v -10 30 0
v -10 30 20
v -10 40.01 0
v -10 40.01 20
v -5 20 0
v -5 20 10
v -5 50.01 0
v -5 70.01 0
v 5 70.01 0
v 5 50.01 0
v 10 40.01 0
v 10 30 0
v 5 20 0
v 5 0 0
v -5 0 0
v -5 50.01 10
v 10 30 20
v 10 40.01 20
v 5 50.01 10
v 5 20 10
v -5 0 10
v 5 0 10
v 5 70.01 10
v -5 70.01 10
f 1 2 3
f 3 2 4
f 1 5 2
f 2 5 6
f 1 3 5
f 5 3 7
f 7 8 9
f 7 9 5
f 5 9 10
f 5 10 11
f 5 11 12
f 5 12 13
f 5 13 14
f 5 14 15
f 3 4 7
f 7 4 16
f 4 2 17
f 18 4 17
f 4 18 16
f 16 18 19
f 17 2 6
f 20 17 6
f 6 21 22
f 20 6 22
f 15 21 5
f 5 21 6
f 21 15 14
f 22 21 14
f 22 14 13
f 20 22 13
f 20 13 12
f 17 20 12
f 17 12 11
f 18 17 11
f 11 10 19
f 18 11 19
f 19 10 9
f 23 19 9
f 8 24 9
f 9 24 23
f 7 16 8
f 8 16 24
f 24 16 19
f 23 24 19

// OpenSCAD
// file: beams.scad
/* 
 * openscad beams library
 * create complex openscads objects from frames which are defining beams
 * (constructed like a ship body or airplane hull)
 *
 * https://github.com/Stemer114/openscad_beams
 * http://www.thingiverse.com/Stemer114/designs
 * 
 *    Copyright (C) 2016 Stemer114 (stemer114@merunka.de)
 *
 *    This program is free software: you can redistribute it and/or modify
 *    it under the terms of the GNU General Public License as published by
 *    the Free Software Foundation, either version 3 of the License, or
 *    (at your option) any later version.
 *
 *    This program is distributed in the hope that it will be useful,
 *    but WITHOUT ANY WARRANTY; without even the implied warranty of
 *    MERCHANTABILITY or FITNESS FOR A PARTICULAR PURPOSE.  See the
 *    GNU General Public License for more details.
 *
 *    You should have received a copy of the GNU General Public License
 *    along with this program.  If not, see <http://www.gnu.org/licenses/>.
 *

 * Credits: 
 *          for some of the examples
 *          MCAD Library - Polyholes Copyright 2011 Nophead (of RepRap fame)
 *          It is licensed under the terms of Creative Commons Attribution 3.0 Unported.
 *          https://github.com/SolidCode/MCAD/blob/master/polyholes.scad
 *
 *          BeamsVersion, libEcho and code structure inspired by 
 *          OpenSCAD Parts Library by randyy is licensed under the GNU - LGPL license. 
 *          http://www.thingiverse.com/thing:6021
 *
 */

//**** house keeping
//we define these as functions to avoid assignment problems from caller modules
function BeamsVersion() = 1.0;  //library version
function ep()=0.01;  //epsilon environment to avoid non-manifold objects


//**** module definitions

// a single rectangular frame, usually very thin
// params: w - width of frame (x direction)
//         h - height of frame (z direction)
//         d - thickness of frame (y direction, usually very thin, e.g. 0.1mm)
//         o - offset vector from origin (probably best to use x and y offsets only here for starters)
//         r - rotation vector (probably best to use only z rotation here for starters)
//         vec - vector interface, used instead of the named params
//         the vector must use the following structure (example)
//           w  h  rotation    offset        thickness
//          [3, 4, [0, 0, 90], [0, -1.5, 0], ep ],   //start (front center)
//         there is no checking other than length checking to branch in the interface
//         so better make sure the vector conforms
//         the vector interface allows you to define a list of vectors in your source file
//         and supply them all at once to the beam module (see below)
//         this probably makes more sense if you look at some of the example files
module frame(
        w = 10,  //width
        h = 10,  //height
        r = [0, 0, 0],  //rotation vector
        o = [0, 0, 0],   //offset vector
        d = ep(),  //thickness (normally very thin)
        vec = [],  //vector, default none
        )
{
    if ( len(vec)==5 ) {
        //use vector interface
        translate( vec[3] )
            rotate( vec[2] )
            cube([ vec[0], vec[4], vec[1] ]);
    } else {
        //use single param interface
        translate(o)
            rotate(r)
            cube([w, d, h]);
    }  //end else
}  //end module

// a single beam consisting of two frames at either end, connected by a hull
// to disable hull, use no_hull=true (for debugging)
// beam uses the vector interface (see above in module frame)
module beam(
        frame1 = [10, 10, [0, 0, 0], [0, 0, 0], ep() ],
        frame2 = [10, 10, [0, 0, 0], [0, 20, 0], ep() ],
        no_hull = false,   
        )
{
    if ( no_hull ) {
        frame(vec=frame1);
        frame(vec=frame2);
    } else {
        hull() {
            frame(vec=frame1);
            frame(vec=frame2);
        }  //end hull
    }  //end else
}  //end module

// a beam consisting of 2 or more frames connected by hulls
// uses the vector interface (see above)
// see example scad files in library source to get an idea how to use this
module beam_multi(frames=[], no_hull=false )
{
    if ( len(frames)<2 ) {
        echo("WARNING: beam_multi: number of frames too small (must be at least 2): ", len(frames) );
    } else {
        for ( frame = [0:len(frames)-2] ) {
            beam( frames[frame], frames[frame+1], no_hull=no_hull );
        } //end for

    }
}

/*************************************************
 * interface 
*/

libEcho=true;
if (libEcho!=false){ 
	echo("****************************************************************  ");
    echo(" beams scad library loaded.");
    echo(" Version: ", BeamsVersion() );
    echo(" usage: - include beams.scad in your project dir,");
    echo("        - then add include <beams.scad> to your script ");
	echo("        - to turn off this header, place libEcho=false; in your script");
    echo("        - see examples scad files to some inspiration")
	echo("****************************************************************  ");
}
// main file
/*
 * a collection of simple examples for beams library
 * example for using openscad beams library
 *
 */

ep = 0.01;  //epsilon environment

include <beams.scad>

//          w   h   rotation   offset    thickness
params = [ 
           [10, 10, [0, 0, 0], [-5, 0, 0], ep ], 
           [10, 10, [0, 0, 0], [-5, 20, 0], ep ], 
           [20, 20, [0, 0, 0], [-10, 30, 0], ep ], 
           [20, 20, [0, 0, 0], [-10, 40, 0], ep ], 
           [10, 10, [0, 0, 0], [-5, 50, 0], ep ], 
           [10, 10, [0, 0, 0], [-5, 70, 0], ep ], 
         ];

beam_multi(frames=params );
